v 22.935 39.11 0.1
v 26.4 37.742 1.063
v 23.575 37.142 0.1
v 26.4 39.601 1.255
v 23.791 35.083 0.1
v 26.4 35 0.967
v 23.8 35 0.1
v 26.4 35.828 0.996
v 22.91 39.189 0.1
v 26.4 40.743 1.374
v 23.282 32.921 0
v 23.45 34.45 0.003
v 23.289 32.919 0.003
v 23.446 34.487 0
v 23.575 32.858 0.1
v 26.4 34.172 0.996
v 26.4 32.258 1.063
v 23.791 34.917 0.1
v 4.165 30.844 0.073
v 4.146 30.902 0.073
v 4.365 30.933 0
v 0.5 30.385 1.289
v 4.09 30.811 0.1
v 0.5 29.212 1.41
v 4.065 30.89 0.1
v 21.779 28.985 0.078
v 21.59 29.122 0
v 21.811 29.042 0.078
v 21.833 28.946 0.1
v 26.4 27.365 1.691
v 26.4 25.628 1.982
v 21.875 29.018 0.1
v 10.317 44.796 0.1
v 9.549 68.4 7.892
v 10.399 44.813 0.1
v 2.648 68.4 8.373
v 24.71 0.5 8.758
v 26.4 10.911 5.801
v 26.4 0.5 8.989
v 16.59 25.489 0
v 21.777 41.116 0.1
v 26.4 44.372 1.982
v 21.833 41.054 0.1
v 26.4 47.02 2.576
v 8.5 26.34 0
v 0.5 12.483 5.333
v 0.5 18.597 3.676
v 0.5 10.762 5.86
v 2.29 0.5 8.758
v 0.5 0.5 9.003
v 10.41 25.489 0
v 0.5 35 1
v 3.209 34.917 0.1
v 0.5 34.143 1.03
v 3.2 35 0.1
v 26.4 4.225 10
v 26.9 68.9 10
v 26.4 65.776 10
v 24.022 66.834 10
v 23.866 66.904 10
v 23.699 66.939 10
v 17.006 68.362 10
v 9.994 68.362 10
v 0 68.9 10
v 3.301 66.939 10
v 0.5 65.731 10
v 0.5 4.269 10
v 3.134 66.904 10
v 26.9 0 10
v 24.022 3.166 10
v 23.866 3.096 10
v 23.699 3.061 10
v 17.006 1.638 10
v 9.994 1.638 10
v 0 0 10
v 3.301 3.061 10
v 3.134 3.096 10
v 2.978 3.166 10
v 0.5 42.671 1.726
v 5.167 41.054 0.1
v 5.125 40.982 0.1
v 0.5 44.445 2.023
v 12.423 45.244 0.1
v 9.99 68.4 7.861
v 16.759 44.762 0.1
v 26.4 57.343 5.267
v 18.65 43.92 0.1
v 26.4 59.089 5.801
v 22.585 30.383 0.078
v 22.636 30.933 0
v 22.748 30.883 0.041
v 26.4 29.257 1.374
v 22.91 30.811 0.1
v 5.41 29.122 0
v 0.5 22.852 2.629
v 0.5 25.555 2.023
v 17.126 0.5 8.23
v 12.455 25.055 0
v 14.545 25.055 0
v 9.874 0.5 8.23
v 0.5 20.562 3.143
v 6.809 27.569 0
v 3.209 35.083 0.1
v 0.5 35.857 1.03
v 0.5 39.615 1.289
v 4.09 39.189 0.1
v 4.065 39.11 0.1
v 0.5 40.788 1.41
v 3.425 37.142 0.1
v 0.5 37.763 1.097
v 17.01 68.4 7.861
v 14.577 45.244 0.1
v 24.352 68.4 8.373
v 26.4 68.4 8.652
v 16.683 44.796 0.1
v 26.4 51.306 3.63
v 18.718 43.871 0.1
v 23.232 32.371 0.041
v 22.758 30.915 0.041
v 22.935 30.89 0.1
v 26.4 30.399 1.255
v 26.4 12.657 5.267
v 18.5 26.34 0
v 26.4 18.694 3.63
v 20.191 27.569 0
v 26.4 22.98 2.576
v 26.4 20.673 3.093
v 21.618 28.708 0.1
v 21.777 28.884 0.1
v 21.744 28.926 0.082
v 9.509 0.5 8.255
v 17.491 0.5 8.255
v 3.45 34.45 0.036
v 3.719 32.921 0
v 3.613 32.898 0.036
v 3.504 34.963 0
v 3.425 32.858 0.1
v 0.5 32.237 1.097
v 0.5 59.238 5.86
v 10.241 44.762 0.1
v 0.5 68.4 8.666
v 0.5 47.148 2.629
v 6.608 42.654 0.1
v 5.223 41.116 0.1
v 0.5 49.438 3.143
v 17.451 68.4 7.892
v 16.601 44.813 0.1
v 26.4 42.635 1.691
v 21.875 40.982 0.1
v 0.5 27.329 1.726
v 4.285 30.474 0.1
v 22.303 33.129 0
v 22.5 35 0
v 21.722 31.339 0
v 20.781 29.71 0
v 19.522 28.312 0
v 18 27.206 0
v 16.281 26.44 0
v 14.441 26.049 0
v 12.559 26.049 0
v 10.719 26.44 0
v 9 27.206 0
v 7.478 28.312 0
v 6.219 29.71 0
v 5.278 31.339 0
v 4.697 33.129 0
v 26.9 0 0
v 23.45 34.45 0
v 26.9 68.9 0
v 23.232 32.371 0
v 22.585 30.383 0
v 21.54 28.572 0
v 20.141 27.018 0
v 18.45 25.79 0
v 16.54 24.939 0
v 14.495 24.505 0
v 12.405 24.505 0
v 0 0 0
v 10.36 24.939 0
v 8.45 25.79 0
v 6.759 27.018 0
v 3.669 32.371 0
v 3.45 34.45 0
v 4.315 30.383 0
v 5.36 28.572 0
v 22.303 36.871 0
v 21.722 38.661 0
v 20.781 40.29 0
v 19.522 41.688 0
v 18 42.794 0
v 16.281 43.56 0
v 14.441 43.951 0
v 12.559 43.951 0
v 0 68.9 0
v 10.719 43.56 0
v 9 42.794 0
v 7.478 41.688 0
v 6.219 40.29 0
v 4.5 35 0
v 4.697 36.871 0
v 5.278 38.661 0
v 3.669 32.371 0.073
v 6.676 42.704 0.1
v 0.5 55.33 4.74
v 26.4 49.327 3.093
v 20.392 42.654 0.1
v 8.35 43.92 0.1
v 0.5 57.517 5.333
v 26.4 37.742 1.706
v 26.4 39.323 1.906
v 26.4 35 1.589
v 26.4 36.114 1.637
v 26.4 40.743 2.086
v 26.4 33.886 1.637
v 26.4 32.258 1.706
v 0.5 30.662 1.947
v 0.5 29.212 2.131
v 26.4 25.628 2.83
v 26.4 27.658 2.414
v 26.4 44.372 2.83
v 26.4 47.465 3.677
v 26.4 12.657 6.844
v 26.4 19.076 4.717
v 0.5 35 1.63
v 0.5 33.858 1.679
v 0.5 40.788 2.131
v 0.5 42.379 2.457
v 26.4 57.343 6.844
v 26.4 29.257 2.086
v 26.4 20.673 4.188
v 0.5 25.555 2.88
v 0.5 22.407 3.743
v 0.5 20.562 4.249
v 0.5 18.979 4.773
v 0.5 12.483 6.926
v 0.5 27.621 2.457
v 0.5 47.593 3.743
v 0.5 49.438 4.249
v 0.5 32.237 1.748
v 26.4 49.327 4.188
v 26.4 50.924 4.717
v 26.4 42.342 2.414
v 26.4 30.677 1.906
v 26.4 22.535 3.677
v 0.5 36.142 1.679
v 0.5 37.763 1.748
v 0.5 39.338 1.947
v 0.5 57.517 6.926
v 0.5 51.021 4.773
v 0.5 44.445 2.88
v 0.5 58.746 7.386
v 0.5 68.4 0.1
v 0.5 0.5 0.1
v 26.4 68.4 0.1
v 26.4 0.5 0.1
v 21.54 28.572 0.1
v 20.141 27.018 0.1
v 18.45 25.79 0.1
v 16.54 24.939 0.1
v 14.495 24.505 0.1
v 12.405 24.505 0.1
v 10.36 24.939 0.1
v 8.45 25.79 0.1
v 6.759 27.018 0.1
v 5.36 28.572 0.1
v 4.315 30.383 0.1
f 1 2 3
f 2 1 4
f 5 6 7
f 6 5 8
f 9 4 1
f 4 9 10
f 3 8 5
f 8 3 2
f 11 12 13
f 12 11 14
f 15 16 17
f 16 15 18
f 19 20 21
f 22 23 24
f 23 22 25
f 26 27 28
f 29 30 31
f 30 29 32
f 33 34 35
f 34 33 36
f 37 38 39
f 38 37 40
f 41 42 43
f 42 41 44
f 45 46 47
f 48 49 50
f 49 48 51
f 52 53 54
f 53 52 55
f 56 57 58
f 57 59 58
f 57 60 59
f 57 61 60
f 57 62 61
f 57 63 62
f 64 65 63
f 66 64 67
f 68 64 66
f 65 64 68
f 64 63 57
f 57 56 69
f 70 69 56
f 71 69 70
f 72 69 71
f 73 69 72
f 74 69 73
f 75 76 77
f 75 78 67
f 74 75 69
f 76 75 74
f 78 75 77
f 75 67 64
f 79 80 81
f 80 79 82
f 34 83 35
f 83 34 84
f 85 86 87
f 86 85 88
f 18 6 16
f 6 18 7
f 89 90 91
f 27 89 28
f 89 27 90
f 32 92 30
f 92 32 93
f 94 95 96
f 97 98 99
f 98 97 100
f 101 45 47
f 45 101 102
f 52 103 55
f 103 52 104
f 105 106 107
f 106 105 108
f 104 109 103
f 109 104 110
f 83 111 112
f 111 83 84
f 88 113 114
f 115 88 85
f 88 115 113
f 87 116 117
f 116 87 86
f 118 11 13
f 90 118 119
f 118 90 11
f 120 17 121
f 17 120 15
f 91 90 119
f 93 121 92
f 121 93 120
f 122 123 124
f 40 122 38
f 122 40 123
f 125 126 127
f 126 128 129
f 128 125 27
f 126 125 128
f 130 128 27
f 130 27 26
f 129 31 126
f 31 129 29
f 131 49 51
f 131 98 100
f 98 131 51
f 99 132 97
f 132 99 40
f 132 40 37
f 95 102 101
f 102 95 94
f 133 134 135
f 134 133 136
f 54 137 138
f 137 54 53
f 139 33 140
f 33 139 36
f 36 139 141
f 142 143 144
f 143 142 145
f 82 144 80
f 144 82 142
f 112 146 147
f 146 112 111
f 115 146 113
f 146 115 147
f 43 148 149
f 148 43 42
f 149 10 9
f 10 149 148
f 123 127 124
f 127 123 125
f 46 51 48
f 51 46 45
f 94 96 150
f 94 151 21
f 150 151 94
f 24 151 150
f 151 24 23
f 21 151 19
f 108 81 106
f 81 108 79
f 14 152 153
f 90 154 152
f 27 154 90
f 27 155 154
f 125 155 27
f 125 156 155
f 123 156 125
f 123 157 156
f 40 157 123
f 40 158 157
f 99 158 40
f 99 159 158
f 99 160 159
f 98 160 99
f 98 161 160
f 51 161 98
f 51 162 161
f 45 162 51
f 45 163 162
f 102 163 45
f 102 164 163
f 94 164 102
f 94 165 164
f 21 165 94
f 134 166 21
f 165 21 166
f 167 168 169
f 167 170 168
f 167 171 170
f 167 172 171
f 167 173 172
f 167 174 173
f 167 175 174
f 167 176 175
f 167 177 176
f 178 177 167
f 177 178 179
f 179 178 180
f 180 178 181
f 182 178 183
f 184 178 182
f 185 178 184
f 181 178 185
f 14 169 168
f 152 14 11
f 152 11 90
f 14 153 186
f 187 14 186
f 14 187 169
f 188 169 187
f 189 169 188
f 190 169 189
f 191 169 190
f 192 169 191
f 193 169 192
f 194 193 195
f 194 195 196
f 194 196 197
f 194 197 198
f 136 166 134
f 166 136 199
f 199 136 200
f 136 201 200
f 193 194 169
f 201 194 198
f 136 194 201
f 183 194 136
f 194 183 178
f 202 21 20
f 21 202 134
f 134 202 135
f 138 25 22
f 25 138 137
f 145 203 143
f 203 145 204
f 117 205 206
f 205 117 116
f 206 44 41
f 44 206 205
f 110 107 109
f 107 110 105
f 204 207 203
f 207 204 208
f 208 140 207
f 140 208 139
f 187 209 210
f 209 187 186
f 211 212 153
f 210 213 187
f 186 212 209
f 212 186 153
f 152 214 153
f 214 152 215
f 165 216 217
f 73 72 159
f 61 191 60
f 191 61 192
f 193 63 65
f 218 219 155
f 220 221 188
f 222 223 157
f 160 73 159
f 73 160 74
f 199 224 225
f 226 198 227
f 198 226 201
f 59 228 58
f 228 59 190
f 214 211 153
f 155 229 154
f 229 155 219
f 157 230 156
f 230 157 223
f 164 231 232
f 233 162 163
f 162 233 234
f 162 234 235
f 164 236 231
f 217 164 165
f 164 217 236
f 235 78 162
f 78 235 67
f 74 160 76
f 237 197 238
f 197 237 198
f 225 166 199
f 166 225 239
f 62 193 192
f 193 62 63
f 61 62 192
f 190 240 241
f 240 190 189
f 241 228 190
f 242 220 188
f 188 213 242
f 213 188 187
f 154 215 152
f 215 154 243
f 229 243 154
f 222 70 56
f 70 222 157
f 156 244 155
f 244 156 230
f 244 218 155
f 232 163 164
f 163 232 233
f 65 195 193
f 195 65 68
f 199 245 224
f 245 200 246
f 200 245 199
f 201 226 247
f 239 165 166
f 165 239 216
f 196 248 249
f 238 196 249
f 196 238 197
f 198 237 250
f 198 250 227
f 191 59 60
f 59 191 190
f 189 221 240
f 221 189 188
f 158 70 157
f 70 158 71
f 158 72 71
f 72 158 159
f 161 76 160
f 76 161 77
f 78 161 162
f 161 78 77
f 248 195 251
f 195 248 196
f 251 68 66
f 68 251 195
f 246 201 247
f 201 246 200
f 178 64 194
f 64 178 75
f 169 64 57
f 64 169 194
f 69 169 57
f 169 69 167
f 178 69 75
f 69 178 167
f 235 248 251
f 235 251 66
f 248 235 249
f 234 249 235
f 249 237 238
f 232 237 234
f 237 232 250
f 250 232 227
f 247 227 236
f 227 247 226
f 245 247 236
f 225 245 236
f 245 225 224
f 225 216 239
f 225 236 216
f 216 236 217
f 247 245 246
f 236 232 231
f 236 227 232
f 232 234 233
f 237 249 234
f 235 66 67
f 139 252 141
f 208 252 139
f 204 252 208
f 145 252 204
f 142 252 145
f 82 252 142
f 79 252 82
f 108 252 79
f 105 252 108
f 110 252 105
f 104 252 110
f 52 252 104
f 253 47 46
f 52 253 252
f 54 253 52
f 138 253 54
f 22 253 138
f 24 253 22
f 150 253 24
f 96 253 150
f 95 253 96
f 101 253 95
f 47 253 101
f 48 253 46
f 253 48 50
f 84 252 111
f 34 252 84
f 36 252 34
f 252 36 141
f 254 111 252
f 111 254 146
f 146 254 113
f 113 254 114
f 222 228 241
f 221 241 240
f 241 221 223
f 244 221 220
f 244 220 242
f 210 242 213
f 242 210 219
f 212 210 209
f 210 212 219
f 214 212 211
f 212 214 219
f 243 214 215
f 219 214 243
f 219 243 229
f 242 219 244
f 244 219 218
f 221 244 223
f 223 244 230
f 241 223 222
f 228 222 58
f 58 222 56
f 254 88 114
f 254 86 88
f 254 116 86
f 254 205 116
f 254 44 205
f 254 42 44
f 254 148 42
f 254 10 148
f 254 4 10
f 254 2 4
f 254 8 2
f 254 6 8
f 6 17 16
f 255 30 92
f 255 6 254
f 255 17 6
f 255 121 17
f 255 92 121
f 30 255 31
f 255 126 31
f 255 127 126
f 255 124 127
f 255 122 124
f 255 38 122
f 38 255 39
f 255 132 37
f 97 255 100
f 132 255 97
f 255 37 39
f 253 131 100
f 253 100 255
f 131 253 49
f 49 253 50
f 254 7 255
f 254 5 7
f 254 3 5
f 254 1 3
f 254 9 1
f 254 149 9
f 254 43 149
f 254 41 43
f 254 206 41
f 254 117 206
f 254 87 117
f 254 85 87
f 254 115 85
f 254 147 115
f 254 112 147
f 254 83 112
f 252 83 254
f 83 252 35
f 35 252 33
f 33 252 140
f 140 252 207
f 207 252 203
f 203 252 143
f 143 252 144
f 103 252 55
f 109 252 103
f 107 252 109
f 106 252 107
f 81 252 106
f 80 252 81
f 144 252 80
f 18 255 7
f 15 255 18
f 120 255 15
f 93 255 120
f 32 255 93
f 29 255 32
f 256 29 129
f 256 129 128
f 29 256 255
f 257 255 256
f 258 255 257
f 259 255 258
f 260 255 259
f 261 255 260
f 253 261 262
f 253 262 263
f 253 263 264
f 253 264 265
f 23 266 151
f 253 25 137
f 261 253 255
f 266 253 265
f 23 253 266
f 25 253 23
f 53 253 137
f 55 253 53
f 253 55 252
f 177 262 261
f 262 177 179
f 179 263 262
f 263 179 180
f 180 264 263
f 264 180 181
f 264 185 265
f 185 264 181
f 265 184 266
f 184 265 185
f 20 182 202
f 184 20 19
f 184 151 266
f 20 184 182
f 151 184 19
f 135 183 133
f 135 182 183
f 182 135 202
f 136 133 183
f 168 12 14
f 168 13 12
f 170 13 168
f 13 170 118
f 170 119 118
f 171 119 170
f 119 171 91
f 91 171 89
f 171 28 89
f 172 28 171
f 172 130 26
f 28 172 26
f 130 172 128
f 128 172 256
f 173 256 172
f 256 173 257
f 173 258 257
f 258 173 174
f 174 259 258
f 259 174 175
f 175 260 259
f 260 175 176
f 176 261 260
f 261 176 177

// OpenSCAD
$fn=30;

/* Diffuser Lense For A Particular Project (OpenSCAD) */
tol = 0.1;

/* LED PCB */
holedia   = 16;

/* Diffuser spec */
dheight = 10;
thickness = 1.5;
standoff = 1.5;
holediffuser = holedia+4;

/* Camera Chamber */
camchamberw_org = 27;
camchamberh_org = 70;

camchamberw = camchamberw_org - tol;
camchamberh = camchamberh_org - tol -1;



/* Enclosure hole */
enclosurew = 19;

/* Diffuser */
union()
{
  // Box
  linear_extrude(height = dheight) 
  {
     difference() 
    {
       offset(r = 0) 
        square(size = [camchamberw,camchamberh], center = false);
       offset(r = -0.5) 
        square(size = [camchamberw,camchamberh], center = false);
     }
  }
  
  // Funnel
  difference()
  {
    translate([camchamberw_org/2,camchamberh_org/2,0])
    difference()
    {
      linear_extrude(height = dheight, scale=4) 
        circle(d=holediffuser);
      linear_extrude(height = dheight+1, scale=4) 
        circle(d=holediffuser-2);
    }
    linear_extrude(height = 10) 
    {
      difference() 
      {
         offset(r = 100) 
          square(size = [camchamberw,camchamberh], center = false);
         offset(r = 0) 
          square(size = [camchamberw,camchamberh], center = false);
       }
    }
  }
  
  // Base
  linear_extrude(height = 0.1) 
  {
    difference() 
    {
      square(size = [camchamberw,camchamberh], center = false);
      translate([camchamberw/2,camchamberh/2,0])
        circle(d=holediffuser);
    }
  }
}

/* Camera Frame Model */
%translate([-tol/2,-tol/2,-2])
union()
{
  %linear_extrude(height = 2) 
  {
     difference() 
    {
       offset(r = 0) 
        square(size = [camchamberw_org,camchamberh_org], center = false);
       offset(r = -2) 
        square(size = [camchamberw_org,camchamberh_org], center = false);
     }
  }
  %translate([camchamberw_org/2,camchamberh_org/2,-thickness/2])
     cylinder(thickness,d=holedia);
}
